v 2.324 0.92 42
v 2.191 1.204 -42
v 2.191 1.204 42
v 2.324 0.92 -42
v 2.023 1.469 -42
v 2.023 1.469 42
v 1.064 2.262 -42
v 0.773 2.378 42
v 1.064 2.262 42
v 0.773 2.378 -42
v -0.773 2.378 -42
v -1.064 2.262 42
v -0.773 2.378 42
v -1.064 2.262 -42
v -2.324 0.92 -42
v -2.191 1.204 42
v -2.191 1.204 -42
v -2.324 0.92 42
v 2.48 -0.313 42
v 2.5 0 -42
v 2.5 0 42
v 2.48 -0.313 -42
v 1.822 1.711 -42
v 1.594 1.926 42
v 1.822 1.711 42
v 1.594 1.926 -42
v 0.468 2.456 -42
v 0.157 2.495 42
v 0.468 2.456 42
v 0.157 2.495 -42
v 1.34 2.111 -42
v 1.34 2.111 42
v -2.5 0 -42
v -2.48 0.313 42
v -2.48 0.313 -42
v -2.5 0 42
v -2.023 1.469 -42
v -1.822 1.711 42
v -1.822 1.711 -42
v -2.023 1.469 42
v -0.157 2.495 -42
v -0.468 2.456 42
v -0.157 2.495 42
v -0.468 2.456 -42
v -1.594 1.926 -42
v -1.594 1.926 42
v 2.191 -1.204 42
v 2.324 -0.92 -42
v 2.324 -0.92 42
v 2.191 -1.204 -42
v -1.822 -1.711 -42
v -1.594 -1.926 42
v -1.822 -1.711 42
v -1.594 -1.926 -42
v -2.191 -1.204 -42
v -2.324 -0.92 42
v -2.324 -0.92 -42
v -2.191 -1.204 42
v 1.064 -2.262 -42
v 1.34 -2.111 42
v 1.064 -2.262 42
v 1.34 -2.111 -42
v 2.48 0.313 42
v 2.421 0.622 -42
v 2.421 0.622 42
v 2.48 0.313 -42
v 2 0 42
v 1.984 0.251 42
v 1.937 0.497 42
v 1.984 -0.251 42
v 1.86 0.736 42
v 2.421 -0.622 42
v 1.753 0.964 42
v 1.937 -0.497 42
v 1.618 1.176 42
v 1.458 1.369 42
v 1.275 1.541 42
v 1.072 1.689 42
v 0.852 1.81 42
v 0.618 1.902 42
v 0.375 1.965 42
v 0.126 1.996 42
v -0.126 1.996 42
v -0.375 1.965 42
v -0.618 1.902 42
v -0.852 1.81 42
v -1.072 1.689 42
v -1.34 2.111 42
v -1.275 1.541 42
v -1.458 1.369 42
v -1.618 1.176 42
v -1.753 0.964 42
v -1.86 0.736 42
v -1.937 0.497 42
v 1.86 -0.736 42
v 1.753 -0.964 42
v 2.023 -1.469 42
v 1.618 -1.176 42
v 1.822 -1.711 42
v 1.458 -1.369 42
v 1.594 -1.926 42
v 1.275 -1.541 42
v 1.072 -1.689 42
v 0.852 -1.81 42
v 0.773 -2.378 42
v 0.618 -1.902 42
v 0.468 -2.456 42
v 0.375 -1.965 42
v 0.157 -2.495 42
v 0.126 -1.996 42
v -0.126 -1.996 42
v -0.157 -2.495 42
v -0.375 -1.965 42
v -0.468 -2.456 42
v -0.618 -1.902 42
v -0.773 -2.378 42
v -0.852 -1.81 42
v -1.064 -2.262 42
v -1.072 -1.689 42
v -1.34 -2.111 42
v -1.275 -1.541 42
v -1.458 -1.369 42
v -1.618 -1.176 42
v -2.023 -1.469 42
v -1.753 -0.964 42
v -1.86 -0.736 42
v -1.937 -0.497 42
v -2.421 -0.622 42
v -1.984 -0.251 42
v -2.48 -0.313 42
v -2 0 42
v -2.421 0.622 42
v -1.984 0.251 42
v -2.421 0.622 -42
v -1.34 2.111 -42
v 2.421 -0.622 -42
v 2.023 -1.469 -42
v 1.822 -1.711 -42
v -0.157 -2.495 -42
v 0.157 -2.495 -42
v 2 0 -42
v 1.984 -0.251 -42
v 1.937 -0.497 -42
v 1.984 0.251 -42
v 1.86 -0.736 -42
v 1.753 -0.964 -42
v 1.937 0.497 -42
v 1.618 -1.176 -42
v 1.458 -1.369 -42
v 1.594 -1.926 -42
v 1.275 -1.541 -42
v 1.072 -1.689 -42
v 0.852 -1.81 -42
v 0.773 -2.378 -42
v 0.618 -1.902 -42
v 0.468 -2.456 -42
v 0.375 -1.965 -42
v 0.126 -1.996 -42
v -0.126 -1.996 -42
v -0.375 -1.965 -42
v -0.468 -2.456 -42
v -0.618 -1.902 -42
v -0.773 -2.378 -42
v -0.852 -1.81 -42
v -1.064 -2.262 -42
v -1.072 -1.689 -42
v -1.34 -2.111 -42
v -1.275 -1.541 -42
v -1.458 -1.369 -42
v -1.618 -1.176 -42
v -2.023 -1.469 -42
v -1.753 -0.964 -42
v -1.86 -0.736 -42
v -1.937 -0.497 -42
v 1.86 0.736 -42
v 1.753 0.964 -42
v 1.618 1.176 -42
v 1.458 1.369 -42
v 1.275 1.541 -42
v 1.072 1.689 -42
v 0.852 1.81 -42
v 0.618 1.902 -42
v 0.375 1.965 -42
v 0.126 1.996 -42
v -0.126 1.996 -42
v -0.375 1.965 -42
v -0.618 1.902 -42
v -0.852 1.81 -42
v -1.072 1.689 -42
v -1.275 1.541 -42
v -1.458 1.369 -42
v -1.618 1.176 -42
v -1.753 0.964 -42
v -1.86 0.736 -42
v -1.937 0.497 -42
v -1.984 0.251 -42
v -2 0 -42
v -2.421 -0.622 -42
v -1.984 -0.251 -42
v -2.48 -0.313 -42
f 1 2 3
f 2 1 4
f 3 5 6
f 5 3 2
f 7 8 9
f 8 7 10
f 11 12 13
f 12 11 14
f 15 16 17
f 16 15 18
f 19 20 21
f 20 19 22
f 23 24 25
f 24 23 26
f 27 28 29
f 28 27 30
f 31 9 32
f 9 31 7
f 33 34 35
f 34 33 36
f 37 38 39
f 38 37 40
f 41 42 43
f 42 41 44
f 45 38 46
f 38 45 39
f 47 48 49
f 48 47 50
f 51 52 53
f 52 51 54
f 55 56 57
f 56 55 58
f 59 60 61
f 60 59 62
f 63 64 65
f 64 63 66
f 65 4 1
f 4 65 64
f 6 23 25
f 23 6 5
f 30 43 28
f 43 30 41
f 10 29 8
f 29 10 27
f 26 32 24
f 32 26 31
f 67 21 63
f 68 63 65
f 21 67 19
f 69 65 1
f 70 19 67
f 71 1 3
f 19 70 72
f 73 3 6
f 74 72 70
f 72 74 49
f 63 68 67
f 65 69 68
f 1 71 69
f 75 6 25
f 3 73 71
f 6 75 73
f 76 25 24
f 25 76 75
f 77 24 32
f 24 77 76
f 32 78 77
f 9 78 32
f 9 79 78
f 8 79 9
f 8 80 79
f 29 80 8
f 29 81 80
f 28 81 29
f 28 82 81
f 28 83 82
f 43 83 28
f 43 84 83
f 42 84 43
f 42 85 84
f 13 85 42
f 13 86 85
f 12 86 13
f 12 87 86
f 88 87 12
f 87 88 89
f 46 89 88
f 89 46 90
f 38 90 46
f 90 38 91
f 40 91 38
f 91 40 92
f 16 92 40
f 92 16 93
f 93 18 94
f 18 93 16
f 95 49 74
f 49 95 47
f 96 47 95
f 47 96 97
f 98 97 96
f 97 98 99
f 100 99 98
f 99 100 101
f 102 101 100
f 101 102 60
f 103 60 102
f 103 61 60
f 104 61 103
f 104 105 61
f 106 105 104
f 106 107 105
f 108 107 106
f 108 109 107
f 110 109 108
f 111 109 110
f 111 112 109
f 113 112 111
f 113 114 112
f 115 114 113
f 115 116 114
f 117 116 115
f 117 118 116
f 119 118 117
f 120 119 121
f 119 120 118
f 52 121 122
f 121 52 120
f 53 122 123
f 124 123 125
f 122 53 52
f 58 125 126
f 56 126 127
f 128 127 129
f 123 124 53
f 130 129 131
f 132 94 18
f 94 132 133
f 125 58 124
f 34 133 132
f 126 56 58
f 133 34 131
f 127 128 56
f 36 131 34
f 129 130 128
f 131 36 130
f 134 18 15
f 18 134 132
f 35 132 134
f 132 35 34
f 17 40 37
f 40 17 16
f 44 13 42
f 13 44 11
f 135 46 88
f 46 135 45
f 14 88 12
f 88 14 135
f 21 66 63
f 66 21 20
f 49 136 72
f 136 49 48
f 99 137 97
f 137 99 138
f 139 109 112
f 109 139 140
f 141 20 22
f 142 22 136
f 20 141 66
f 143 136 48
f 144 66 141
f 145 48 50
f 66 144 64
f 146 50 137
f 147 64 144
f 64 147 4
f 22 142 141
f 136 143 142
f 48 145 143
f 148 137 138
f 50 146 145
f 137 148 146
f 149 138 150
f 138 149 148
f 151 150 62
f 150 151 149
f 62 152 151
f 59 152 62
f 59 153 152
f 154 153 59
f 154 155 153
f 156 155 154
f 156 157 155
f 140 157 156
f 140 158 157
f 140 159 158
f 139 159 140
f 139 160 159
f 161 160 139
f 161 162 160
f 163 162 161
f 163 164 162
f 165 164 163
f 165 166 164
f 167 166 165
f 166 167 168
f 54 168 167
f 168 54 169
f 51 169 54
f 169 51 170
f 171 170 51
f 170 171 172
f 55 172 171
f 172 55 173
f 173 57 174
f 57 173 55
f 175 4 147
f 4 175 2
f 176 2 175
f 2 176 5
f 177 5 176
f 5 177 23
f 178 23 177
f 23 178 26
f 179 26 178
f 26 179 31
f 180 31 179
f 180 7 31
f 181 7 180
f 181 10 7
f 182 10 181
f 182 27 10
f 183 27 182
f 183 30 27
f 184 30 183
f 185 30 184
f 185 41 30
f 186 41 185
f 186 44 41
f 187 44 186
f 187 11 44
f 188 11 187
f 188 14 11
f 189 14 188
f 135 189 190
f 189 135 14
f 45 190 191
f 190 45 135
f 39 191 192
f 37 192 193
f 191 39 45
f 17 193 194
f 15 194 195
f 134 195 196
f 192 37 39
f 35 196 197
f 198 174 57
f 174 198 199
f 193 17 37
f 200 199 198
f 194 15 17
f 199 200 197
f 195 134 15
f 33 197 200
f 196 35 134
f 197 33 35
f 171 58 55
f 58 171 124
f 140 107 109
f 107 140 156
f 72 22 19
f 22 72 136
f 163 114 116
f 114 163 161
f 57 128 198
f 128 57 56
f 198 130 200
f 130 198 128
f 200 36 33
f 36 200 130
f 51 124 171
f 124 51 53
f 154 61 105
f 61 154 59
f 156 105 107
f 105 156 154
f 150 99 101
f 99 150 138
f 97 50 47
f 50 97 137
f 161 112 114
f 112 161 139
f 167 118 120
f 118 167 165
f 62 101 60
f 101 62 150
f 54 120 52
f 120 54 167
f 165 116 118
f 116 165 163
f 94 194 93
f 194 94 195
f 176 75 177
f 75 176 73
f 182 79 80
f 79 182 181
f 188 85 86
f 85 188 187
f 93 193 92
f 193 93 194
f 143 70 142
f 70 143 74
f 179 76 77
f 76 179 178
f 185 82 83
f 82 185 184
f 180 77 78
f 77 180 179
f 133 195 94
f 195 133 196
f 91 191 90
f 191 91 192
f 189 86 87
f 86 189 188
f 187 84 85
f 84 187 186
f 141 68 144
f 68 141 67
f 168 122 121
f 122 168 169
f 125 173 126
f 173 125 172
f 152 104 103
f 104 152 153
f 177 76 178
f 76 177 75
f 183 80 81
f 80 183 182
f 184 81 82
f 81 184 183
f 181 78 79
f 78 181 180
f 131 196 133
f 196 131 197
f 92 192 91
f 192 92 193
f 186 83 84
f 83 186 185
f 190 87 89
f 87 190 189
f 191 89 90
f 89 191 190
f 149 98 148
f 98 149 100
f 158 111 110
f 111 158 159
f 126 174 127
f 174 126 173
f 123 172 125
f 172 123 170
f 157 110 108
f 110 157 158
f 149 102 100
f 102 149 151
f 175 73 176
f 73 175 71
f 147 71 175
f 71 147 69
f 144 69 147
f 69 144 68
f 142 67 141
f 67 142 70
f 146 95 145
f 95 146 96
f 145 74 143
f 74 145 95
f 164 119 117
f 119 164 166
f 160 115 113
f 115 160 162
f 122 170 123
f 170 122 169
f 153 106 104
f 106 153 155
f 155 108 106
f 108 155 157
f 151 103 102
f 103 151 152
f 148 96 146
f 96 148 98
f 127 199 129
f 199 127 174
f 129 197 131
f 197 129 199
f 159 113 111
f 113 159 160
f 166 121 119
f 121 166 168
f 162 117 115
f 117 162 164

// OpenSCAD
$fn = 50;


difference() {
	union() {
		translate(v = [0, 0, -42.0000000000]) {
			cylinder(h = 84, r = 2.5000000000);
		}
	}
	union() {
		translate(v = [0, 0, -100.0000000000]) {
			cylinder(h = 200, r = 2);
		}
	}
}
